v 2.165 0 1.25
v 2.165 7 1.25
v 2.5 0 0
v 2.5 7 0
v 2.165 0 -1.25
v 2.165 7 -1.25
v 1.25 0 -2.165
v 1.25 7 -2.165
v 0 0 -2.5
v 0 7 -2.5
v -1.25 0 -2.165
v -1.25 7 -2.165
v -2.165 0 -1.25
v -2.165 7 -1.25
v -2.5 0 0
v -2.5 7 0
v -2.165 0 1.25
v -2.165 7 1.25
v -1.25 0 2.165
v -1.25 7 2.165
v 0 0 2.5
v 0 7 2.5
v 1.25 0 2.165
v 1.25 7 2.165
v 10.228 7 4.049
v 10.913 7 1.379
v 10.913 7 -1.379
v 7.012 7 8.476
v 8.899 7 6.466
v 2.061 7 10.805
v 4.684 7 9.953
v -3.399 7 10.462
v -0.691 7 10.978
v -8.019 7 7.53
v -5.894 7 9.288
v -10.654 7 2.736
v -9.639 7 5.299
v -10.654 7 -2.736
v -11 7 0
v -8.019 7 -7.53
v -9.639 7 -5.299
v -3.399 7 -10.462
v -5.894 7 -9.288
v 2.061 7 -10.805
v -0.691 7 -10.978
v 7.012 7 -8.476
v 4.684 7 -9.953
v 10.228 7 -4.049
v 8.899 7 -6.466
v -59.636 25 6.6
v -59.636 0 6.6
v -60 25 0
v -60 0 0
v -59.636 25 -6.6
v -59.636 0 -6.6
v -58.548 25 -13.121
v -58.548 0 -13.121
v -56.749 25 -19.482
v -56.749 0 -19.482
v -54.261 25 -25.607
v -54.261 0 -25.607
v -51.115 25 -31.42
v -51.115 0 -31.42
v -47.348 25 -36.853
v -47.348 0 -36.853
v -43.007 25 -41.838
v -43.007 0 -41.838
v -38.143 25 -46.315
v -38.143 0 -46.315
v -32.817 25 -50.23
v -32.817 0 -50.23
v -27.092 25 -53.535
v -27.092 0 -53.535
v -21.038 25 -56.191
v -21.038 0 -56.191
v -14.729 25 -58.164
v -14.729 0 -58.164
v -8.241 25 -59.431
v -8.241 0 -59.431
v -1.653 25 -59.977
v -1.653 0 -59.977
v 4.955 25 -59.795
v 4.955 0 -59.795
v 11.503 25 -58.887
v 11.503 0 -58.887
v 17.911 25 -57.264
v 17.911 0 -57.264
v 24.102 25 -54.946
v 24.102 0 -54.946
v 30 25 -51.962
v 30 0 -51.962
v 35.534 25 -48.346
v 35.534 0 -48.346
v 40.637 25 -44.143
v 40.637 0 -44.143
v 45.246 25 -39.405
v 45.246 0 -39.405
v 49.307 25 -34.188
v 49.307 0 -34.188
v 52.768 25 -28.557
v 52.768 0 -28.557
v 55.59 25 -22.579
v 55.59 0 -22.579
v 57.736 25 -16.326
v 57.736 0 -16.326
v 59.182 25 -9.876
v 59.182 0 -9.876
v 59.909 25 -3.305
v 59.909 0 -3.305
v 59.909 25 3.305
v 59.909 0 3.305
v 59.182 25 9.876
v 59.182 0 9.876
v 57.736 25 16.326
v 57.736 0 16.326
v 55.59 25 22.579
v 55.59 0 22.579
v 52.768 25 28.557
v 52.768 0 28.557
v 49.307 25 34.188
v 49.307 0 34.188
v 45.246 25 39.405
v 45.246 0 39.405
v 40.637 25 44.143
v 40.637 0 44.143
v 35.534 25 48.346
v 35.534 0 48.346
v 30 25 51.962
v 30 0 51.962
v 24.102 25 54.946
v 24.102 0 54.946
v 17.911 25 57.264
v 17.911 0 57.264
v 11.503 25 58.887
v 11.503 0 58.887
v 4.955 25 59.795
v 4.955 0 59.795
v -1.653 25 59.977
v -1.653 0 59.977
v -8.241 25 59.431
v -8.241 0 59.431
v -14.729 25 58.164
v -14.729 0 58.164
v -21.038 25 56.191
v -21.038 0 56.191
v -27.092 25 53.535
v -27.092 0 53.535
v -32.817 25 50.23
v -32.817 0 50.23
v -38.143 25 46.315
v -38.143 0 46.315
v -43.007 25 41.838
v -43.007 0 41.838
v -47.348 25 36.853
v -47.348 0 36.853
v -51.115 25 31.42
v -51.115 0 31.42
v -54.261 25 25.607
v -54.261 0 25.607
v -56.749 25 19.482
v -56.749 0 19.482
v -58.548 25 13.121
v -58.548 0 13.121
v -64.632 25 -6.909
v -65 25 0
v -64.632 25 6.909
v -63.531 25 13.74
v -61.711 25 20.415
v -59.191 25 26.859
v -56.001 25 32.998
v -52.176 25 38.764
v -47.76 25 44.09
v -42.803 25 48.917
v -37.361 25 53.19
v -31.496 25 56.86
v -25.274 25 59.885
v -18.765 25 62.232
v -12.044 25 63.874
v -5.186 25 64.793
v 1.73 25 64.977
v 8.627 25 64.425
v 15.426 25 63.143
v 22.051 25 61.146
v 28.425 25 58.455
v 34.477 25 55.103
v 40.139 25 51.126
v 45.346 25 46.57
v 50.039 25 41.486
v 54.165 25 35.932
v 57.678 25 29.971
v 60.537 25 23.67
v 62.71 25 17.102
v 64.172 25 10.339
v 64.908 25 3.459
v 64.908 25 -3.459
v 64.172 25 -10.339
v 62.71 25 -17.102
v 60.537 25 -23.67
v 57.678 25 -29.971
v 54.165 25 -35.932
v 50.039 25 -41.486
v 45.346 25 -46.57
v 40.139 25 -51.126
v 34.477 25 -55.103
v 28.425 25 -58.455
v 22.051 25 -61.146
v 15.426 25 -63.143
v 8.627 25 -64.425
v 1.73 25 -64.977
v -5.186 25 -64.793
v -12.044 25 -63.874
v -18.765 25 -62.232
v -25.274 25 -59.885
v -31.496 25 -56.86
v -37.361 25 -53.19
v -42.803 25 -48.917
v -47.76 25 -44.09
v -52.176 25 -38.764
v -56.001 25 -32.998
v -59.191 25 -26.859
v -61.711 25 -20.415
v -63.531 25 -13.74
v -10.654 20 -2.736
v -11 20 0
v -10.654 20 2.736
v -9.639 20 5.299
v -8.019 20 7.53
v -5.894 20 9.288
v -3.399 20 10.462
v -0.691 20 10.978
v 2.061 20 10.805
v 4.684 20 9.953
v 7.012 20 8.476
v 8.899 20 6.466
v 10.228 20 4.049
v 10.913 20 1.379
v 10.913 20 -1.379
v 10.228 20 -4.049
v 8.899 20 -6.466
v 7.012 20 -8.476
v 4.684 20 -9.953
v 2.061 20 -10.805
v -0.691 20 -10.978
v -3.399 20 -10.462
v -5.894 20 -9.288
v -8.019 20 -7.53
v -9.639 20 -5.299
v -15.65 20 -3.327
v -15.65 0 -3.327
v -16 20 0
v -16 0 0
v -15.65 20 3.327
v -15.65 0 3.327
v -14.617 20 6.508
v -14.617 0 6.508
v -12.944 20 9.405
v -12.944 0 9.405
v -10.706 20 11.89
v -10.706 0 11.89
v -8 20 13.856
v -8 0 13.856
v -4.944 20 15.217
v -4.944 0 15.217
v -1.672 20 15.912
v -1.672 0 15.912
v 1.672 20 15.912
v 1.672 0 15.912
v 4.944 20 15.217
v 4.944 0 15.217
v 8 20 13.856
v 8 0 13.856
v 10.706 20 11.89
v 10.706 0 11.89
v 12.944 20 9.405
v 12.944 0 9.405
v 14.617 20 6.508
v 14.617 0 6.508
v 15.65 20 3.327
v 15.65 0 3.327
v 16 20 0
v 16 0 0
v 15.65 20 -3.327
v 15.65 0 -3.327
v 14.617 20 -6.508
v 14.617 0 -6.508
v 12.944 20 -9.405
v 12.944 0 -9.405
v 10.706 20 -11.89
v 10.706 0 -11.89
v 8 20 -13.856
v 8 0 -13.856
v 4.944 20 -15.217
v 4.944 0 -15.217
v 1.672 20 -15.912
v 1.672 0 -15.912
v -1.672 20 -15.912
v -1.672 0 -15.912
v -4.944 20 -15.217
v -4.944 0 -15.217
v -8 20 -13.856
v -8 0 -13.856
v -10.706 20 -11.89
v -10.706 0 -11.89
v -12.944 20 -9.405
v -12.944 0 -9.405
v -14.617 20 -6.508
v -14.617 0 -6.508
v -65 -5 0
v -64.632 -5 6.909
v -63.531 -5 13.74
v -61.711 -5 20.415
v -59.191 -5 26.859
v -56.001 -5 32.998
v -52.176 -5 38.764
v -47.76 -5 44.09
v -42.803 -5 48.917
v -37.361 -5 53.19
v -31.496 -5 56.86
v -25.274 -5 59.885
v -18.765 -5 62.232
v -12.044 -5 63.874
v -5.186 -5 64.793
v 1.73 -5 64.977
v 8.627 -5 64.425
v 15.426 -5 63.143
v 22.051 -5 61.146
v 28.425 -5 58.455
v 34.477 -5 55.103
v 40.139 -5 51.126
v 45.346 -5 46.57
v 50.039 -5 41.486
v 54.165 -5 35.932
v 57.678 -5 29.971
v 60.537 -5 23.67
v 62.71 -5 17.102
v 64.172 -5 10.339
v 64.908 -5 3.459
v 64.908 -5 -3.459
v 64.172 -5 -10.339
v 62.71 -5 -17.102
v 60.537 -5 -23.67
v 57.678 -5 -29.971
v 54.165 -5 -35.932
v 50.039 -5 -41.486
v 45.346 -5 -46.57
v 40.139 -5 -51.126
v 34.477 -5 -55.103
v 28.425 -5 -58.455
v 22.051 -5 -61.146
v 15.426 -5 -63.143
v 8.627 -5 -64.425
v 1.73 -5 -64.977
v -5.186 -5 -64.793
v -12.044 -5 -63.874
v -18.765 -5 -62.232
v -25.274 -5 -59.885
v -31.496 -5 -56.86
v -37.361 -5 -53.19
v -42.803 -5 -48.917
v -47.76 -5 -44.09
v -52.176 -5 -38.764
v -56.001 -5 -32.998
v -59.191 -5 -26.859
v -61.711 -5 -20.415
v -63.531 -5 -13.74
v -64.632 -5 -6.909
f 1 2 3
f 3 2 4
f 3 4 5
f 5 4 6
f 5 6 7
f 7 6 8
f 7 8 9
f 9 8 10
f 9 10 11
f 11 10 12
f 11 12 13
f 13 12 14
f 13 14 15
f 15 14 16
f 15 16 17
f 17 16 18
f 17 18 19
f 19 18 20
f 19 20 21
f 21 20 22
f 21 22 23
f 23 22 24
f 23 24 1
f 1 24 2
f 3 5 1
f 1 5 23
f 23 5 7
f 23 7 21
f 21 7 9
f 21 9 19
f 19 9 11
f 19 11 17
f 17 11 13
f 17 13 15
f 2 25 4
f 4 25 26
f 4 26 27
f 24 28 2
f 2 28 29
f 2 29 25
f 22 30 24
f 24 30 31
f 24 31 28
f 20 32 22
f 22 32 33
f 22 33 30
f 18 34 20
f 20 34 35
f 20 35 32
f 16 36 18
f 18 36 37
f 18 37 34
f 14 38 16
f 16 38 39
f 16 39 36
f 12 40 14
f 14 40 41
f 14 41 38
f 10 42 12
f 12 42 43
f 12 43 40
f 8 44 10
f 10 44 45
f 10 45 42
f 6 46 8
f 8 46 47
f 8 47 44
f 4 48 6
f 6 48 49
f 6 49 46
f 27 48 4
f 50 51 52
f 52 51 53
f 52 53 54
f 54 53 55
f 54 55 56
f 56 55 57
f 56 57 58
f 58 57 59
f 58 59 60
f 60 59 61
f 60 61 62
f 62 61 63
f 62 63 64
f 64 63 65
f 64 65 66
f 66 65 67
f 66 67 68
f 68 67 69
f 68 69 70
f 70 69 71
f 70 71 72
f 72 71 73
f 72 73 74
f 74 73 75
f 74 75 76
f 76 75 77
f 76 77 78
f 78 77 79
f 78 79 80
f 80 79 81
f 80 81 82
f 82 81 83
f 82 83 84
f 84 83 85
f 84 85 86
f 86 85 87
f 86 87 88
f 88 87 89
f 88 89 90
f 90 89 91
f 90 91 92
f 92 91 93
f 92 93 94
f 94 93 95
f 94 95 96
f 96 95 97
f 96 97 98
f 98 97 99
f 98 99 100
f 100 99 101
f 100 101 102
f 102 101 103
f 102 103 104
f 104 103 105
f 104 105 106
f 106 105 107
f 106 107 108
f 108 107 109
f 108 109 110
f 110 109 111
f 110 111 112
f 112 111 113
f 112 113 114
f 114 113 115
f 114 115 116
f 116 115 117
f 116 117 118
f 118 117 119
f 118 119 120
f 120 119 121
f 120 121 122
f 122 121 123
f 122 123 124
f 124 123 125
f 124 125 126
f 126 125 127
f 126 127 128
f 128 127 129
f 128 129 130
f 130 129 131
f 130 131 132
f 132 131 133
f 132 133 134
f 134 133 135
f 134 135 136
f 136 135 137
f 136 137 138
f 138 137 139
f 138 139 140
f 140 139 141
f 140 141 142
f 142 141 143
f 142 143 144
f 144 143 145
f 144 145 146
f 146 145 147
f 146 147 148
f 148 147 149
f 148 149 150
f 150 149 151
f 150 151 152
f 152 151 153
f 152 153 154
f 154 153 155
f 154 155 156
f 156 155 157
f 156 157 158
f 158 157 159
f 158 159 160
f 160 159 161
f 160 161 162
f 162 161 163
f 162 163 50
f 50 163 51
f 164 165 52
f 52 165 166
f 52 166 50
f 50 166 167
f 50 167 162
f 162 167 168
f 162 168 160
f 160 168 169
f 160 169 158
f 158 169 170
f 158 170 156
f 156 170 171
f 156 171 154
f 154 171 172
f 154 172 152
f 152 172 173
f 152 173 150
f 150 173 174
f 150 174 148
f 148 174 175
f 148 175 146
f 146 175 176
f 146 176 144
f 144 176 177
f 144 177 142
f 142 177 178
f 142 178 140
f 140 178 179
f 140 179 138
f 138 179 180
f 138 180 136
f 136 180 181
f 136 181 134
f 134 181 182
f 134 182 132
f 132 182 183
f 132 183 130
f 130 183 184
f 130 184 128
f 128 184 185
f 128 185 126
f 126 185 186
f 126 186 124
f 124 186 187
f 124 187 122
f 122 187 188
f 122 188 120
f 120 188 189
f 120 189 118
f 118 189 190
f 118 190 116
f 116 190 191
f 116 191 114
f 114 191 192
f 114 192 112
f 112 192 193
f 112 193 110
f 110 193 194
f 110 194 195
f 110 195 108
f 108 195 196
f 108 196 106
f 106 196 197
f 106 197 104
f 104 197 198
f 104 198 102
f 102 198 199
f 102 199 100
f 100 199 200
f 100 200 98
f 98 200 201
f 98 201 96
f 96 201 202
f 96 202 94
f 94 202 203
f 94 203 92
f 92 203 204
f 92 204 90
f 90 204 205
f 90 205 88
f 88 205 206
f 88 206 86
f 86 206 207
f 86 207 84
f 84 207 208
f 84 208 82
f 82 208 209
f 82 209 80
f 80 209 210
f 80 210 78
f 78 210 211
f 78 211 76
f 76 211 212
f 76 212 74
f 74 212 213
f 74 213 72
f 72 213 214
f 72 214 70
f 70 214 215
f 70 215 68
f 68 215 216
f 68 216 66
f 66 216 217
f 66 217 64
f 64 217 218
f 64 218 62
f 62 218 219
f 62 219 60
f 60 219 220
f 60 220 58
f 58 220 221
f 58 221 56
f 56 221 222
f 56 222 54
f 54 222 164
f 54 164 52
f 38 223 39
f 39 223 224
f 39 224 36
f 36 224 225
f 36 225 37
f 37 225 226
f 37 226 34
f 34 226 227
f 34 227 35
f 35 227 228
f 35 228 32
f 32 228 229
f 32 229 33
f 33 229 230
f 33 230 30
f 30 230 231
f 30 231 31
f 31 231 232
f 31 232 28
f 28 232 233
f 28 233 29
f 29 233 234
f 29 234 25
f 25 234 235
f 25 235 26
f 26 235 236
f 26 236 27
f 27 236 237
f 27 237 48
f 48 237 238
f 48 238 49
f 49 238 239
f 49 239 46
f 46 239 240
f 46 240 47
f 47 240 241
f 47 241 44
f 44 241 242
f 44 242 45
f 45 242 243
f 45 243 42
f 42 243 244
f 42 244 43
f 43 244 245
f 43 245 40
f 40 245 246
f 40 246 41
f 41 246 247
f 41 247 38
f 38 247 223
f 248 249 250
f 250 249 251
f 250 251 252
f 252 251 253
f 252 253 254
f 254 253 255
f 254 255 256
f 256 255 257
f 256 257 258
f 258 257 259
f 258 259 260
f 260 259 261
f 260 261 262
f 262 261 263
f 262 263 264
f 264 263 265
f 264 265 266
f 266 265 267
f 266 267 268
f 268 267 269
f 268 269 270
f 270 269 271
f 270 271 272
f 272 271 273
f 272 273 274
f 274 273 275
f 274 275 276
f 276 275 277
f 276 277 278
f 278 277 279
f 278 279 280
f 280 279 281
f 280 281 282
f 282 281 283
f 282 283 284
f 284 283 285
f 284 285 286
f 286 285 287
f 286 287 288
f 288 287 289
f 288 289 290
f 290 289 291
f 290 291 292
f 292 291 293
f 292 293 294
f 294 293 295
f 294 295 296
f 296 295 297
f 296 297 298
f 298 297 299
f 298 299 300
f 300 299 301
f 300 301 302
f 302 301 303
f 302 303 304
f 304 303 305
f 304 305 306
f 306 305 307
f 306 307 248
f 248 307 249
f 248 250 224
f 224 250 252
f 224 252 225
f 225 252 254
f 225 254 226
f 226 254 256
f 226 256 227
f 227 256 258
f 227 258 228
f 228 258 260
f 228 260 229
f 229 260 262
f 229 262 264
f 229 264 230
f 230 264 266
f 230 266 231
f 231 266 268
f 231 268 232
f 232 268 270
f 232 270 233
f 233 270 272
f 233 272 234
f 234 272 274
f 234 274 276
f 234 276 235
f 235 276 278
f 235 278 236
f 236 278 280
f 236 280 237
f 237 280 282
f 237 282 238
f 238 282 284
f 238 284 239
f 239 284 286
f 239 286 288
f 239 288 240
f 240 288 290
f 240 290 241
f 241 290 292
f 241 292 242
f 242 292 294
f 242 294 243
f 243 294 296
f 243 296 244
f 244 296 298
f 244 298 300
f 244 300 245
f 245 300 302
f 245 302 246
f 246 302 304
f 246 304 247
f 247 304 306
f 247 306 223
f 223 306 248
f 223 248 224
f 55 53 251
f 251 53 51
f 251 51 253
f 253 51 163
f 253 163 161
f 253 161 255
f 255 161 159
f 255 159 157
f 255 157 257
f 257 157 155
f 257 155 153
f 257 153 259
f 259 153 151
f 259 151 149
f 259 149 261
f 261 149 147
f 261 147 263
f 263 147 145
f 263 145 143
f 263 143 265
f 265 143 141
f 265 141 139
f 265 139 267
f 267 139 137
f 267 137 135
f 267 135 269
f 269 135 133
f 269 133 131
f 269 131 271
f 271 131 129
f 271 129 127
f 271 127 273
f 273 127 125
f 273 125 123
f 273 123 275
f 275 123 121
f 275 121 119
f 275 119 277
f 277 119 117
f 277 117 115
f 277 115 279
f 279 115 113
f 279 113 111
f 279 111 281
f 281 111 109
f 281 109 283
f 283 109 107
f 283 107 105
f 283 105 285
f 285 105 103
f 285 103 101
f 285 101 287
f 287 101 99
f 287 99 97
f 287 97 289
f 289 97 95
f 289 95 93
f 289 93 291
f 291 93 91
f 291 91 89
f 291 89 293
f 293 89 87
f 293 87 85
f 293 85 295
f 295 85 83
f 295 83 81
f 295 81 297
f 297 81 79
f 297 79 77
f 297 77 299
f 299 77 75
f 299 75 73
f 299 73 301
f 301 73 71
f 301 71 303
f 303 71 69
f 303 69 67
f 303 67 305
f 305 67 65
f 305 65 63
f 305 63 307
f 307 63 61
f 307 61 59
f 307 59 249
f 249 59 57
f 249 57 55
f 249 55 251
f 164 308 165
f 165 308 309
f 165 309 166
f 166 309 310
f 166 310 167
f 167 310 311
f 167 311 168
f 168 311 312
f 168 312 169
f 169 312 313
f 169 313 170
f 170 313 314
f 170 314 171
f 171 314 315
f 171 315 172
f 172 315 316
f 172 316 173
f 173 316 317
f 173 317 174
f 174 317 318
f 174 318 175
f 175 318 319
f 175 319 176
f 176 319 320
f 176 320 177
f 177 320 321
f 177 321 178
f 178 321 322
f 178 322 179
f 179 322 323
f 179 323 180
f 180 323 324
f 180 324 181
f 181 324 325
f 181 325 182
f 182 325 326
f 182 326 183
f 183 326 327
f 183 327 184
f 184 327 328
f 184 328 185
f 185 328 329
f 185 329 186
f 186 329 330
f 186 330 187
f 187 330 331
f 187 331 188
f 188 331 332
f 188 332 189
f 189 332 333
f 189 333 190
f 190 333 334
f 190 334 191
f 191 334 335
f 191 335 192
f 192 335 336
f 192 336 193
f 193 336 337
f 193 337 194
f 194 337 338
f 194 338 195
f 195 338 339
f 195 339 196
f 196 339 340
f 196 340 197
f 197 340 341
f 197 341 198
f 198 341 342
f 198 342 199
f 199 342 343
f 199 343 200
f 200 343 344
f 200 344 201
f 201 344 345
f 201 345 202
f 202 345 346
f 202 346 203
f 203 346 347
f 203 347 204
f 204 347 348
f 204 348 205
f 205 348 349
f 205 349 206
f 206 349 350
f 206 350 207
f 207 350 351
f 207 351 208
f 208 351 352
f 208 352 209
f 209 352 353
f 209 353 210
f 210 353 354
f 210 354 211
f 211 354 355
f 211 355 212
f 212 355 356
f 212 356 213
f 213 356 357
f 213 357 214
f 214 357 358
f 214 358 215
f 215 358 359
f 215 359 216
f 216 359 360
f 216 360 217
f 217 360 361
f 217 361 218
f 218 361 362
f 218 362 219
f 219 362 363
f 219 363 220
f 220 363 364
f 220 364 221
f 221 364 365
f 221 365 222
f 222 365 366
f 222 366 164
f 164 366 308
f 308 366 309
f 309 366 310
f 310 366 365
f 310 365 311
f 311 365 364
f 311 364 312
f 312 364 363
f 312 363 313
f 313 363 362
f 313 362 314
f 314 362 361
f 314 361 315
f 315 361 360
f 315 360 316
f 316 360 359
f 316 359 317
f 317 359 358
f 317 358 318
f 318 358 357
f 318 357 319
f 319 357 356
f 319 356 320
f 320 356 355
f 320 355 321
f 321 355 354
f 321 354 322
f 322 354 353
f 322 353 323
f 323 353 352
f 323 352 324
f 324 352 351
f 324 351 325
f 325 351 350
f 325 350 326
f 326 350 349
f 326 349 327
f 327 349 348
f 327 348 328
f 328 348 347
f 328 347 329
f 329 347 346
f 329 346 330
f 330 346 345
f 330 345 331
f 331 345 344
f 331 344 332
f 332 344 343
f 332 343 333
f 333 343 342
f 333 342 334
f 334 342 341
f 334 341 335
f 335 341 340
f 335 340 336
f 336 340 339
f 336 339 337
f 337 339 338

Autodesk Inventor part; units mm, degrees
ref_plane "YZ Plane" through (0, 0, 0) normal (1, 0, 0) x (0, 1, 0)
ref_plane "XZ Plane" through (0, 0, 0) normal (0, 1, 0) x (-1, 0, 0)
ref_plane "XY Plane" through (0, 0, 0) normal (0, 0, 1) x (1, 0, 0)
sketch "スケッチ1" plane through (0, 0, 0) normal (0, 1, 0) x (-1, 0, 0)
  circle A0 centre (0, 0) radius 65
  circle A1 centre (0, 0) radius 60
  circle A2 centre (0, 0) radius 11
  circle A3 centre (0, 0) radius 16
  dimension "d0" = 130
  dimension "d1" = 120
  dimension "d3" = 32
  dimension "d18" = 22
extrude "押し出し1" add sketch "スケッチ1" against normal blind 5 contours A0 | A1 | A2 | A3
extrude "押し出し2" add sketch "スケッチ1" along normal blind 20 contours A3
extrude "押し出し3" add sketch "スケッチ1" along normal blind 25 contours A0
extrude "押し出し5" add sketch "スケッチ1" along normal blind 7 contours A2
sketch "スケッチ3" plane through (0, 7, 0) normal (0, 1, 0) x (1, 0, 0)
  circle A0 centre (0, 0) radius 2.5
  dimension "d15" = 5
extrude "押し出し6" cut sketch "スケッチ3" against normal blind 7
properties part number "tire out130 in 22 5mm inward"
